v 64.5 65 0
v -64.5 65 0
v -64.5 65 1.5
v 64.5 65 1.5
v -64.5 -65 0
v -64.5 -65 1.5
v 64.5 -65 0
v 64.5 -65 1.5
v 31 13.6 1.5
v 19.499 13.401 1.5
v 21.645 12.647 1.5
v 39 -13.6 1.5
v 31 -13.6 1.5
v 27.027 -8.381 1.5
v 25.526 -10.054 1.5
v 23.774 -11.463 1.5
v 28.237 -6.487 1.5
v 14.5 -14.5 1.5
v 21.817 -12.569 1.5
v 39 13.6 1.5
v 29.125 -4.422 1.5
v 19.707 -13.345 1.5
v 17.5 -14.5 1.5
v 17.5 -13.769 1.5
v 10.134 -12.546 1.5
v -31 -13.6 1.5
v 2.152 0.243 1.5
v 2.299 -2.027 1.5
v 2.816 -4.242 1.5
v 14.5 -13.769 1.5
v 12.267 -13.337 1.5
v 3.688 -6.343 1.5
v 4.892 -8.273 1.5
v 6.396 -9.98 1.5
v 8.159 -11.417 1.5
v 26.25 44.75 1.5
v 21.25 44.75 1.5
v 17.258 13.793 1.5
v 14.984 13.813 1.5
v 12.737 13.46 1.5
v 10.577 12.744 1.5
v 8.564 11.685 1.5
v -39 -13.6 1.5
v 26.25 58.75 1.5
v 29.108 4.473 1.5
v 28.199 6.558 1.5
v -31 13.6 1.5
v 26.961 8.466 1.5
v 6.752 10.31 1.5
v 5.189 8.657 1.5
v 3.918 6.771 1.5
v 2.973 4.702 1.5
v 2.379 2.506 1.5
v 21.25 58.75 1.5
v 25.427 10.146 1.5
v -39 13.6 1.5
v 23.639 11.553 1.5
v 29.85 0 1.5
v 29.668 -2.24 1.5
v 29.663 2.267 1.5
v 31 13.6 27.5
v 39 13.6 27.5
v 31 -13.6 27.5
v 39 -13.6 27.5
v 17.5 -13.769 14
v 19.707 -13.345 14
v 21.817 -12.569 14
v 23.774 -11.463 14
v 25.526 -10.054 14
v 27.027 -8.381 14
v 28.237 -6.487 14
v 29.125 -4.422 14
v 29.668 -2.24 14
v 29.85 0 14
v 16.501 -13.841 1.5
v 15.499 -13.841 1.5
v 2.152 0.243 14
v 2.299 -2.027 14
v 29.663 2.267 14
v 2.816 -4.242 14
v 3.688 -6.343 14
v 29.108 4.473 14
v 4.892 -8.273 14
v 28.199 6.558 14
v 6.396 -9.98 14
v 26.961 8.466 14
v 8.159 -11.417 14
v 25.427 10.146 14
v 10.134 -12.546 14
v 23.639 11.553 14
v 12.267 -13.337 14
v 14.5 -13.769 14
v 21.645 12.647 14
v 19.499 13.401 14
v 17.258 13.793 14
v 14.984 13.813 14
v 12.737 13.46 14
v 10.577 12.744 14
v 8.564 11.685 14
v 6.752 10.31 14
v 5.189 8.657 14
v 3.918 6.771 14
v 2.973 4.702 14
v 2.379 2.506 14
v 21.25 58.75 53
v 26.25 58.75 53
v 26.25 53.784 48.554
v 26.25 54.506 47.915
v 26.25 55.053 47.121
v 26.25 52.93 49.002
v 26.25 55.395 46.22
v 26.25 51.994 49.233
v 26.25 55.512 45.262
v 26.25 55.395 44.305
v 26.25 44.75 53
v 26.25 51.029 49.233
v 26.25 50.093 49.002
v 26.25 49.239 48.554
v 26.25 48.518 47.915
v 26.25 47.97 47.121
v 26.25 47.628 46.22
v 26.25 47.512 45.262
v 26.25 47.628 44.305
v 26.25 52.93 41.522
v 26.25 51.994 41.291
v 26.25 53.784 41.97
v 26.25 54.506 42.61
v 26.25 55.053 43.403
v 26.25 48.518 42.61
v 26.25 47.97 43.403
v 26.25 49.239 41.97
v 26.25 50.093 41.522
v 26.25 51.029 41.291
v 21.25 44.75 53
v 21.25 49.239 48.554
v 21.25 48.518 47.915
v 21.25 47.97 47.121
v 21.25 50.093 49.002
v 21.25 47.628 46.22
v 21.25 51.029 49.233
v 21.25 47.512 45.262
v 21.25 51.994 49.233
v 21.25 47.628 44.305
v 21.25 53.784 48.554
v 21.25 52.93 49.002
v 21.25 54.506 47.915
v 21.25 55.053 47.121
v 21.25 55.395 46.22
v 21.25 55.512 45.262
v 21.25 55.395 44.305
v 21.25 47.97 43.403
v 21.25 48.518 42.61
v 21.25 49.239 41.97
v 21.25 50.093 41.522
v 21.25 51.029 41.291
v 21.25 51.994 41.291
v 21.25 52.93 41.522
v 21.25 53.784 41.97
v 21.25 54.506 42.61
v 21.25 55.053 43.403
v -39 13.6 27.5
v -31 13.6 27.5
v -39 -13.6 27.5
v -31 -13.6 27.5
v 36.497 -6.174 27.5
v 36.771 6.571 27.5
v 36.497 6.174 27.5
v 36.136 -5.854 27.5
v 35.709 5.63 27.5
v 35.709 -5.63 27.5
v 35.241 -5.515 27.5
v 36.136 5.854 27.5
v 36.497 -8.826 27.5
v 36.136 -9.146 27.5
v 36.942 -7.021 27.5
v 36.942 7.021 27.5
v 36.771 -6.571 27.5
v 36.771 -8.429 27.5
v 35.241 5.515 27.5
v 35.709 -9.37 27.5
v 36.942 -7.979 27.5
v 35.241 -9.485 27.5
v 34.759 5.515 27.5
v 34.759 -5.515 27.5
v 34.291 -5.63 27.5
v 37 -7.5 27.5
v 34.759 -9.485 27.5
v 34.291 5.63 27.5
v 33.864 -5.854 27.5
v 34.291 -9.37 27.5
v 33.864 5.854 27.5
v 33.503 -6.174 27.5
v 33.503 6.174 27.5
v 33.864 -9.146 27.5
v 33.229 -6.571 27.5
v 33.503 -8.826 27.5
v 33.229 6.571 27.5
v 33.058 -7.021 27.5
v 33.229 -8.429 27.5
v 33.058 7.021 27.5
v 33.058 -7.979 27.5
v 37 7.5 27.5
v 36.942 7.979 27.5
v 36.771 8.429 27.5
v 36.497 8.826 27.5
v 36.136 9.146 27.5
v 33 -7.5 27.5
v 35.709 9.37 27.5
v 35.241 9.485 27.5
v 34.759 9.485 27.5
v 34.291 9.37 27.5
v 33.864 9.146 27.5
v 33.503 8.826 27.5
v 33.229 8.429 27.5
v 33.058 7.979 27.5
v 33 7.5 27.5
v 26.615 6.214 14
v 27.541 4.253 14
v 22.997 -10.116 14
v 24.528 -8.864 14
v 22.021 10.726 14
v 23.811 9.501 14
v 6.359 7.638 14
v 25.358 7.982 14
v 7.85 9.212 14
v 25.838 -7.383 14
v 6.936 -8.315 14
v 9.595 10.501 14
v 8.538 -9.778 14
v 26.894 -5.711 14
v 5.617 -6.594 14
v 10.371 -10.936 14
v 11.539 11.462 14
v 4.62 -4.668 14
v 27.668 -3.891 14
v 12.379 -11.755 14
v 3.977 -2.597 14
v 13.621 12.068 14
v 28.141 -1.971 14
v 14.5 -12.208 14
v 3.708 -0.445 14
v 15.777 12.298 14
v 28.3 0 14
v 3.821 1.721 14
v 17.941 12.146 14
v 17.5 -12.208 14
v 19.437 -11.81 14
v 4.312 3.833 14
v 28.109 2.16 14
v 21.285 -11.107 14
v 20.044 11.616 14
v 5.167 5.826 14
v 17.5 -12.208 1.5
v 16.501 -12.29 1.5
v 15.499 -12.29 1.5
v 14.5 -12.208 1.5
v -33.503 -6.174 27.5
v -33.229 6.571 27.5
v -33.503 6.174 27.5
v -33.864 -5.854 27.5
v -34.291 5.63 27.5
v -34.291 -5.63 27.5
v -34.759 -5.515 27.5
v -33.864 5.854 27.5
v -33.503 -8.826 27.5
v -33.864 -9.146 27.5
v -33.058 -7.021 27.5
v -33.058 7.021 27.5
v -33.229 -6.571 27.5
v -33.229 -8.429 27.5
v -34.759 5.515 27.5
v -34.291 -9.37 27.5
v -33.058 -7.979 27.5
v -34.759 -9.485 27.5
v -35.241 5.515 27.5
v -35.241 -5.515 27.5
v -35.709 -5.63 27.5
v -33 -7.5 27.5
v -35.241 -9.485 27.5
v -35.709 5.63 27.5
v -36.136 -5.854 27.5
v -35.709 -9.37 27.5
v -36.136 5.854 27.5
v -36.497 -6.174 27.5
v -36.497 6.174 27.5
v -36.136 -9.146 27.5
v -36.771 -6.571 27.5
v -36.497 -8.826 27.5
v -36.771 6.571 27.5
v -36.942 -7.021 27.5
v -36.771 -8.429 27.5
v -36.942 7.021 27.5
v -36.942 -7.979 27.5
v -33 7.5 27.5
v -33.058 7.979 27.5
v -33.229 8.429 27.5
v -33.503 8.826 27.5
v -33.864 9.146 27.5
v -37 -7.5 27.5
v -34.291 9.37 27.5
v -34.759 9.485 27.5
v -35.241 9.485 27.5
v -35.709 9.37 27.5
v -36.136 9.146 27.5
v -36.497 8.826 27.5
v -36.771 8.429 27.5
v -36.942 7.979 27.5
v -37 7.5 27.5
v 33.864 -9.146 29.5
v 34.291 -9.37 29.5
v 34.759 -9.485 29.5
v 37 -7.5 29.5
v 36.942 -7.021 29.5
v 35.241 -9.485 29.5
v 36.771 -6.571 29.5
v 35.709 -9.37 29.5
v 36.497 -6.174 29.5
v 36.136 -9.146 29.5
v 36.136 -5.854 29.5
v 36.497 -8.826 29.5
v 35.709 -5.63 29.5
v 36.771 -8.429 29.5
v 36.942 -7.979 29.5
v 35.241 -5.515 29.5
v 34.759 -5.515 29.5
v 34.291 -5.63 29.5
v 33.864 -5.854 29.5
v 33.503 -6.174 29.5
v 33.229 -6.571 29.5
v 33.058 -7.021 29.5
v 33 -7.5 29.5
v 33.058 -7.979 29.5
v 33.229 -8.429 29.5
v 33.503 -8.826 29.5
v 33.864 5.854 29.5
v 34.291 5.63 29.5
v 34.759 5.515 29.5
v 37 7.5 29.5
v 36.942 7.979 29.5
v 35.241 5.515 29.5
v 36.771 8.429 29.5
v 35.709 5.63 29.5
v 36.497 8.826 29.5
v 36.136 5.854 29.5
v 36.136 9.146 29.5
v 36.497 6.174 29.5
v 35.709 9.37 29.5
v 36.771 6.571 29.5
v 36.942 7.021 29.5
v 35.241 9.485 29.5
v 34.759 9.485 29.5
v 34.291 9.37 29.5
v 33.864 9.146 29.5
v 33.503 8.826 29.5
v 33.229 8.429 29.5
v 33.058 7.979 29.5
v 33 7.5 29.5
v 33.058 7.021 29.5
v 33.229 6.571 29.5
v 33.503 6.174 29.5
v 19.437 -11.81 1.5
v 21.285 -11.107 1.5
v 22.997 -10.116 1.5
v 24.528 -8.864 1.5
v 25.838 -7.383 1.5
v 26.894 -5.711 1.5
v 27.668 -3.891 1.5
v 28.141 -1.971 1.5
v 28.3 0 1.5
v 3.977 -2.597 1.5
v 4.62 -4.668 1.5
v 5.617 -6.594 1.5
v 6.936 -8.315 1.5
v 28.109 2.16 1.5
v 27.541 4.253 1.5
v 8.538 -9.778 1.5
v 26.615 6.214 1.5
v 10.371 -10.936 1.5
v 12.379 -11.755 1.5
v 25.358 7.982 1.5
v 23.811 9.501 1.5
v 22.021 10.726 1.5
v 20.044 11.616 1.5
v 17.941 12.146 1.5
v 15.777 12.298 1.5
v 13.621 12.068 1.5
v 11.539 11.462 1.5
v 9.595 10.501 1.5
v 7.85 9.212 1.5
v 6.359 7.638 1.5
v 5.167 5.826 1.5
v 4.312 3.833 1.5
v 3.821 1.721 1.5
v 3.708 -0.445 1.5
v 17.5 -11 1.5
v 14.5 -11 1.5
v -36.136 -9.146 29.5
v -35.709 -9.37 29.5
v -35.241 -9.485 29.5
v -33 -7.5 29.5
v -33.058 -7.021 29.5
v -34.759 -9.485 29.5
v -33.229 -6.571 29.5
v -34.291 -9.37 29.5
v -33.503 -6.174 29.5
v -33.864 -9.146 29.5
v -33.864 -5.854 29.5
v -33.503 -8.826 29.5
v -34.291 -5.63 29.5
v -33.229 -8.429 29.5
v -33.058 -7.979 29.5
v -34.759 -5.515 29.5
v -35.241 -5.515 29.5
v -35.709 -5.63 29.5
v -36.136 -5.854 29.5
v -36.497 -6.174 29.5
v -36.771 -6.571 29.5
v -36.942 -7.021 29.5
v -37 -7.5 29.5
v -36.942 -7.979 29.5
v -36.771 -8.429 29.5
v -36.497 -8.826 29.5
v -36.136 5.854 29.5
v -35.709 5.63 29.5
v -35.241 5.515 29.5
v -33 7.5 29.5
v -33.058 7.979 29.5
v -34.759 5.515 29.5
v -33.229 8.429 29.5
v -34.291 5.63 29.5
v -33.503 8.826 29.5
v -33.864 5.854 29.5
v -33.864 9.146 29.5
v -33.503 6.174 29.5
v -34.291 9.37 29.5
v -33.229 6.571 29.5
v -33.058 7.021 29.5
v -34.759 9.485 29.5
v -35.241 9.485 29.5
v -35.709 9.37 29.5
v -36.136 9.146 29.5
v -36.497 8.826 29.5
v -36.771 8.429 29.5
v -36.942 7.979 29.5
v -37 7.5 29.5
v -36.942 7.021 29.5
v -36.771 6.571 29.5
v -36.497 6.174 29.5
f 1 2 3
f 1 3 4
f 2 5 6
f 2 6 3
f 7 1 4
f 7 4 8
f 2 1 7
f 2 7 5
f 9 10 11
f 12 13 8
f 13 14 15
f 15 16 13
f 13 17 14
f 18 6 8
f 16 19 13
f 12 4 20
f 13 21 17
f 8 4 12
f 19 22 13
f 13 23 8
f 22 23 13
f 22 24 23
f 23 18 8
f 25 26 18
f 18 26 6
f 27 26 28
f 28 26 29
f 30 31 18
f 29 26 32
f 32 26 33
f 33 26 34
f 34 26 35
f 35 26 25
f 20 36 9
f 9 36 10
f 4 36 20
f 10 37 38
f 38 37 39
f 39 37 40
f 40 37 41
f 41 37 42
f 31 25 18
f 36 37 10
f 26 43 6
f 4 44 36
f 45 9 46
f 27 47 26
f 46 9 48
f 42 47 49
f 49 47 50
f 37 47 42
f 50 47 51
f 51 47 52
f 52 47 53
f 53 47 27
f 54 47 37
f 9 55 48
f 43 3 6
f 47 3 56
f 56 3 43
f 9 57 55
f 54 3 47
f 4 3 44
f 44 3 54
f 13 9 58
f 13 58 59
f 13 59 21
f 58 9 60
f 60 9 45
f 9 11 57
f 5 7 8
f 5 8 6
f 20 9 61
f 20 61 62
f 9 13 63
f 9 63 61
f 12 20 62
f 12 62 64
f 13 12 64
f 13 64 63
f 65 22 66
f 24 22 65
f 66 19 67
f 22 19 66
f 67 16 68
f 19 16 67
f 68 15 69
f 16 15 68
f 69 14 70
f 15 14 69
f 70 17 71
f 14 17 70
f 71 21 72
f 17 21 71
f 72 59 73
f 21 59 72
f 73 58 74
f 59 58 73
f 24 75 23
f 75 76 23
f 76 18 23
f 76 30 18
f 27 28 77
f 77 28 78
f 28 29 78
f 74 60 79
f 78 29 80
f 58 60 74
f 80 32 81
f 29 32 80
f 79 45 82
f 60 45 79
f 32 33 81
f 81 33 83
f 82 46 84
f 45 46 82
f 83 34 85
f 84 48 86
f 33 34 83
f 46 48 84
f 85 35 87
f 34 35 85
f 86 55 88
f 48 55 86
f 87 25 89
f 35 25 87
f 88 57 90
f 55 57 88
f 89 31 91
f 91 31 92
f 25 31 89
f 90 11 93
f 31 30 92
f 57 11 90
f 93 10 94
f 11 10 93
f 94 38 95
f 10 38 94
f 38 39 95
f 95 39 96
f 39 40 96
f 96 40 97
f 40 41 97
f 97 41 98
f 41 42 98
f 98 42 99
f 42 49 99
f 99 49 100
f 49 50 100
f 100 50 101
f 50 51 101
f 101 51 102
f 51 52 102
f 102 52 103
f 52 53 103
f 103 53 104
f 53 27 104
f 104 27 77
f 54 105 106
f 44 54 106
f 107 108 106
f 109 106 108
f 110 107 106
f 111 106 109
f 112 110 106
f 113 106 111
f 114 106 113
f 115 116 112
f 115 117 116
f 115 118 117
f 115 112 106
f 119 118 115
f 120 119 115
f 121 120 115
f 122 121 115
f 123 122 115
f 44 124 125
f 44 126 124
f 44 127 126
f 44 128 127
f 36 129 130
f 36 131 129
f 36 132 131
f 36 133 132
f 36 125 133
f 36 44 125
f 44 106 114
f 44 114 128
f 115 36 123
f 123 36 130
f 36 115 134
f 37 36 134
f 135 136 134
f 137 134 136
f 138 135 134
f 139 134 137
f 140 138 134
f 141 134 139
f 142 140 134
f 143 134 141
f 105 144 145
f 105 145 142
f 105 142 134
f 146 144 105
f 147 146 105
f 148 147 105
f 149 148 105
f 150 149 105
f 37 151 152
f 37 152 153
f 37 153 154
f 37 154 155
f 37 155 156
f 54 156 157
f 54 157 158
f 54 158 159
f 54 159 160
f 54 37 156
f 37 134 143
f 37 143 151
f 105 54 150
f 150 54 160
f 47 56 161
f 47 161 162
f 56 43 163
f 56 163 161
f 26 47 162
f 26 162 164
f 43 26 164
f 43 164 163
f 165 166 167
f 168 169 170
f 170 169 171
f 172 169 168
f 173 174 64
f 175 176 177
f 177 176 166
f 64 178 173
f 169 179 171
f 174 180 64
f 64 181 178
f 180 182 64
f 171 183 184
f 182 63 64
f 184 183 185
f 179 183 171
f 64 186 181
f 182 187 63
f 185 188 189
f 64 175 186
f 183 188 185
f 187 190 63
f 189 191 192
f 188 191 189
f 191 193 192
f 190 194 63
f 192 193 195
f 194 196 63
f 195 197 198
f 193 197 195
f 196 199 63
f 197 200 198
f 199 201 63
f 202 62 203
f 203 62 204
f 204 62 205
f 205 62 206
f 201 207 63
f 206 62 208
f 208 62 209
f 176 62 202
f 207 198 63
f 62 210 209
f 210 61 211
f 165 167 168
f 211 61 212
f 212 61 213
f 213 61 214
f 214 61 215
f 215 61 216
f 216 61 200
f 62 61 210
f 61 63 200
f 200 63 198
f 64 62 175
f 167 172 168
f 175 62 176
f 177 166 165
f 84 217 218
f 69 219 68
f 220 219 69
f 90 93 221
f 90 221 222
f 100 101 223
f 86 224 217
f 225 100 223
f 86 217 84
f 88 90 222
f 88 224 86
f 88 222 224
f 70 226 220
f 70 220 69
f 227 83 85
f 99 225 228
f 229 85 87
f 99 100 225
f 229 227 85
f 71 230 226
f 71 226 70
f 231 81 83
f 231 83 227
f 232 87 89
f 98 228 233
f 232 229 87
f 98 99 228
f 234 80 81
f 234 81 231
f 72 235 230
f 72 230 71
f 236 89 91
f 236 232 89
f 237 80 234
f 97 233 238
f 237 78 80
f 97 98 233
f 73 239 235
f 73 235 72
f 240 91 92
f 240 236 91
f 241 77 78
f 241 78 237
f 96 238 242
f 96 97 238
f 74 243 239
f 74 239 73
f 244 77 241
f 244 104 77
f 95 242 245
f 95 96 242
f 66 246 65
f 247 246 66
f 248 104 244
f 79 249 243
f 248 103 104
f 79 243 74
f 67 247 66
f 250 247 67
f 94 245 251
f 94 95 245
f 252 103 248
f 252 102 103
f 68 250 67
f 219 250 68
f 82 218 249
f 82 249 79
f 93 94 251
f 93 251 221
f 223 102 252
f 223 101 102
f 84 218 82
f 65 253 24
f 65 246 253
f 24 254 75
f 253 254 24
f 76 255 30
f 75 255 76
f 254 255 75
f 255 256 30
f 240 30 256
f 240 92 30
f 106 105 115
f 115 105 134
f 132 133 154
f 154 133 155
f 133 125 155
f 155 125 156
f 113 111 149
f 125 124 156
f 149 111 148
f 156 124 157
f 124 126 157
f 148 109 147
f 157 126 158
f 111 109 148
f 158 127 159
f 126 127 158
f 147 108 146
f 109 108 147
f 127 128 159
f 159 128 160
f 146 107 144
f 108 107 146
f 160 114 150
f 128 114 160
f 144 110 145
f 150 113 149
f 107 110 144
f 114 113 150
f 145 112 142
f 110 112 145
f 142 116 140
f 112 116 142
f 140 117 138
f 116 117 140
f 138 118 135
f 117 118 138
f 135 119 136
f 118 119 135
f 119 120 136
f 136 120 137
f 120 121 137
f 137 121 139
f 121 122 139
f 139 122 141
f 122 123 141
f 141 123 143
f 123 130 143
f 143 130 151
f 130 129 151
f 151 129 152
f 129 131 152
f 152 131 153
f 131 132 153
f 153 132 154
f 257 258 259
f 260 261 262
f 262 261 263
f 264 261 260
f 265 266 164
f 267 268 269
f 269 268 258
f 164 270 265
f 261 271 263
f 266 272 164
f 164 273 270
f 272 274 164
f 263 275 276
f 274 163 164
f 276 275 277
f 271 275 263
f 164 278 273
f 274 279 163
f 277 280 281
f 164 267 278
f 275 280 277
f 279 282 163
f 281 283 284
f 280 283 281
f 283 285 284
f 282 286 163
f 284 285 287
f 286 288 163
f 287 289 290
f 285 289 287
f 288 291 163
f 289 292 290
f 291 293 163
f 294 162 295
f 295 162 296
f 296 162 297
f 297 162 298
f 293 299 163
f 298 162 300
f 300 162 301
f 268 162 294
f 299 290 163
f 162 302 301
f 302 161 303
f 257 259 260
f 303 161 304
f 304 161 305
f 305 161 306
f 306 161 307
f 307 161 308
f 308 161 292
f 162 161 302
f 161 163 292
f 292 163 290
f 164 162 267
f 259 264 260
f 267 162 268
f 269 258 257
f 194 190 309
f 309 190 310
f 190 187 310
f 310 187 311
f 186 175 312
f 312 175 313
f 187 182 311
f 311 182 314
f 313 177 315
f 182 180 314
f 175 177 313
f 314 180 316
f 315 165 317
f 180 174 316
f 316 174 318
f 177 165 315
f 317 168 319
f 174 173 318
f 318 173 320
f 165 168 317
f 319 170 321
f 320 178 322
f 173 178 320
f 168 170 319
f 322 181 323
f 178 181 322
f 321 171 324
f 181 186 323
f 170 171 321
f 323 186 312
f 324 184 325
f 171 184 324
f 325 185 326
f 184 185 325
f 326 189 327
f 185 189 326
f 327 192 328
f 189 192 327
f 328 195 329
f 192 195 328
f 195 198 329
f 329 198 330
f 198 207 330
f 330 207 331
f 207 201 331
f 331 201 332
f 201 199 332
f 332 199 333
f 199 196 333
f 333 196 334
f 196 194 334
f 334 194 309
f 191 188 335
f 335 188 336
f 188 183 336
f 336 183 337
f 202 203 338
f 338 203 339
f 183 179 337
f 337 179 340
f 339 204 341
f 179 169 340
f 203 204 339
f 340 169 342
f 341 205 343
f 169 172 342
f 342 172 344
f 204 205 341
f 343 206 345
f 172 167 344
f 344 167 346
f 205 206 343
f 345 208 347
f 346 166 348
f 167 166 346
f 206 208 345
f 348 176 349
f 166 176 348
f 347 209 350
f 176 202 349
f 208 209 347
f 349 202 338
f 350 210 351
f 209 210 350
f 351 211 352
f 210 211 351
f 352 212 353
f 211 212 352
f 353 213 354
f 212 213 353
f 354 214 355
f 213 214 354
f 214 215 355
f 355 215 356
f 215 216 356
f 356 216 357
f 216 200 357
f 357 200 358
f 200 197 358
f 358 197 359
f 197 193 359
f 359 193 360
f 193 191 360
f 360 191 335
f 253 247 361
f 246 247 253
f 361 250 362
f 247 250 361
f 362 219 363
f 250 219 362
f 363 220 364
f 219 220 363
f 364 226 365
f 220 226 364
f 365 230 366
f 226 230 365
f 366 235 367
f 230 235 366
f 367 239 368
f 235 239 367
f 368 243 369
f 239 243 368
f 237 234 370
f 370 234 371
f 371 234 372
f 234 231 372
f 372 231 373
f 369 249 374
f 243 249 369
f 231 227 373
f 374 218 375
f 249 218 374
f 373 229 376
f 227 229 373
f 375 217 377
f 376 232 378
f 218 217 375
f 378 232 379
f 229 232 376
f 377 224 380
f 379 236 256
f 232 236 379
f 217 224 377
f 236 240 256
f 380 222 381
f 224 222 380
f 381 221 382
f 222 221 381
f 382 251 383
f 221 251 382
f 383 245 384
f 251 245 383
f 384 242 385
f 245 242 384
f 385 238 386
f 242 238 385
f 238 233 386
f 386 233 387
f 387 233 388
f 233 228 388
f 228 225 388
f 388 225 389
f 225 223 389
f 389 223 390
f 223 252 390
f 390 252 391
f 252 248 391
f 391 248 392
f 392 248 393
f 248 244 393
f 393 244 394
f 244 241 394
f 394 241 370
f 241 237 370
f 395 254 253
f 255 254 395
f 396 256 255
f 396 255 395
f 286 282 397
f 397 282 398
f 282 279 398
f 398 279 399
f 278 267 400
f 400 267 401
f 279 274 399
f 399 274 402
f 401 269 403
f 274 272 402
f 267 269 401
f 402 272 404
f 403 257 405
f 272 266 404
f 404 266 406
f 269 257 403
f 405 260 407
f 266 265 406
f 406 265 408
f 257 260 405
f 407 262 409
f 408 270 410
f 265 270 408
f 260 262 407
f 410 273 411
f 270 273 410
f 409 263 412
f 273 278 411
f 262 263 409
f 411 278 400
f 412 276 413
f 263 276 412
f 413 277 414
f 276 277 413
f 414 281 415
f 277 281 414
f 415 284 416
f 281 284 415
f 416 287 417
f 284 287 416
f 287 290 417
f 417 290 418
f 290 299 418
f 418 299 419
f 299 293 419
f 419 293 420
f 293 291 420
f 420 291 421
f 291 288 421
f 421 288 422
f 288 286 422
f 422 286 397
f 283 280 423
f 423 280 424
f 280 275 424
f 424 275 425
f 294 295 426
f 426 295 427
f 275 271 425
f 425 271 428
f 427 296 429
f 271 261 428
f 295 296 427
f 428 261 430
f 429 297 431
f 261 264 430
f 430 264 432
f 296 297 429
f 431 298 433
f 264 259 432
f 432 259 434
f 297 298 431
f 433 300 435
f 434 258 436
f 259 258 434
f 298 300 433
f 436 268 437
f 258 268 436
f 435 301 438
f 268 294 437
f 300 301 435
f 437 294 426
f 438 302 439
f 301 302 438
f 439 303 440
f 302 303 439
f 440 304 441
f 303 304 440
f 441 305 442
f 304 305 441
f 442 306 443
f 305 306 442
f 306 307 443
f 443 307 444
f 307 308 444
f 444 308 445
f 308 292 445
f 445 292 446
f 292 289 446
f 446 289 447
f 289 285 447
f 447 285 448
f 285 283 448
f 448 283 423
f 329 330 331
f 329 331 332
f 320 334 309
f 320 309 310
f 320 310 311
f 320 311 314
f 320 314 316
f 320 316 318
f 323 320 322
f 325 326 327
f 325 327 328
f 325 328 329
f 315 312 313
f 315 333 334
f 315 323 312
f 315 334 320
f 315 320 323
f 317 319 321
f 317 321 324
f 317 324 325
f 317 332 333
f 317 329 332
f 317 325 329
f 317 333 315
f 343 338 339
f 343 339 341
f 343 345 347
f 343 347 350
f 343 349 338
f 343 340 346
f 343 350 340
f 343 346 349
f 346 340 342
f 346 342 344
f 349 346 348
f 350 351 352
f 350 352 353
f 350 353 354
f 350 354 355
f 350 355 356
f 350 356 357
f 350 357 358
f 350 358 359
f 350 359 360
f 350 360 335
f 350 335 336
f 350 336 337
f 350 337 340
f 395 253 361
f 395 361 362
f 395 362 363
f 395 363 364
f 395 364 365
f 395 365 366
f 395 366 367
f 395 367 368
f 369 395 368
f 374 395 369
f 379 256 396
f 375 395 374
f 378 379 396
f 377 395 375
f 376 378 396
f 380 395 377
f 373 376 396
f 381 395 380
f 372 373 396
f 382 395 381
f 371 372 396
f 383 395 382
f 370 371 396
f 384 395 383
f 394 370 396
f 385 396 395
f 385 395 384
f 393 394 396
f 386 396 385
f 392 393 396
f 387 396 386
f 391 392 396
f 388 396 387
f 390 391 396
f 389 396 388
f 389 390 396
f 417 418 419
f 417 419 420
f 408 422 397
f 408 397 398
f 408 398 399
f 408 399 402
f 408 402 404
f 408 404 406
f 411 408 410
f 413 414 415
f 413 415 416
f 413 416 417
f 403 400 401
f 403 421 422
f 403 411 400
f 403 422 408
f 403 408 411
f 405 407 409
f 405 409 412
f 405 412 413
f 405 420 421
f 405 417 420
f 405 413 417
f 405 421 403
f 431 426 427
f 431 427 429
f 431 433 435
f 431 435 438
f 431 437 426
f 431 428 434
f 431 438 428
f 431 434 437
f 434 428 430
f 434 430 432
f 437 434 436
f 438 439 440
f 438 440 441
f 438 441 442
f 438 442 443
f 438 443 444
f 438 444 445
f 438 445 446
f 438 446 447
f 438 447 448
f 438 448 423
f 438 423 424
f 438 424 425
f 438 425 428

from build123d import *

# Parameters (mm, degrees)
SKETCH_W        = 129
SKETCH_H        = 130
PAD_DEPTH       = 1.5
SKETCH001_R     = 13.85
PAD001_DEPTH    = 12.5
SKETCH002_R     = 12.3
POCKET_DEPTH    = 12.5
SKETCH003_W     = 3
SKETCH003_H     = 3.5
POCKET001_DEPTH = 12.5
SKETCH004_W     = 8
SKETCH004_H     = 27.2
PAD002_DEPTH    = 26
SKETCH005_R     = 2
PAD003_DEPTH    = 2
SKETCH006_W     = 5
SKETCH006_H     = 14
PAD004_DEPTH    = 51.5
SKETCH007_R     = 4
POCKET002_DEPTH = 5


with BuildPart() as part:
    # Sketch → Pad (new body)
    with BuildSketch(Plane.XY):
        Rectangle(SKETCH_W, SKETCH_H)
    extrude(amount=PAD_DEPTH)

    # Sketch001 (on Face6 of Pad) → Pad001 (join)
    with BuildSketch(Plane.XY.offset(1.5)):
        with Locations((16, 0)):
            Circle(SKETCH001_R)
    extrude(amount=PAD001_DEPTH)

    # Sketch002 (on Face8 of Pad001) → Pocket (cut)
    with BuildSketch(Plane.XY.offset(14)):
        with Locations((16, 0)):
            Circle(SKETCH002_R)
    extrude(amount=-POCKET_DEPTH, mode=Mode.SUBTRACT)

    # Sketch003 (on Face8 of Pocket) → Pocket001 (cut)
    with BuildSketch(Plane.XY.offset(14)):
        with Locations((16, -12.75)):
            Rectangle(SKETCH003_W, SKETCH003_H)
    extrude(amount=-POCKET001_DEPTH, mode=Mode.SUBTRACT)

    # Sketch004 (on Face5 of Pocket001) → Pad002 (join)
    with BuildSketch(Plane.XY.offset(1.5)):
        with Locations((35, 0)):
            Rectangle(SKETCH004_W, SKETCH004_H)
        with Locations((-35, 0)):
            Rectangle(SKETCH004_W, SKETCH004_H)
    extrude(amount=PAD002_DEPTH)

    # Sketch005 (on Face23 of Pad002) → Pad003 (join)
    with BuildSketch(Plane.XY.offset(27.5)):
        with Locations((35, 7.5)):
            Circle(SKETCH005_R)
        with Locations((35, -7.5)):
            Circle(SKETCH005_R)
        with Locations((-35, 7.5)):
            Circle(SKETCH005_R)
        with Locations((-35, -7.5)):
            Circle(SKETCH005_R)
    extrude(amount=PAD003_DEPTH)

    # Sketch006 (on Face5 of Pad003) → Pad004 (join)
    with BuildSketch(Plane.XY.offset(1.5)):
        with Locations((23.75, 51.75)):
            Rectangle(SKETCH006_W, SKETCH006_H)
    extrude(amount=PAD004_DEPTH)

    # Sketch007 (on Face15 of Pad004) → Pocket002 (cut)
    with BuildSketch(Plane.YZ.offset(26.25)):
        with Locations((51.511597, 45.262314)):
            Circle(SKETCH007_R)
    extrude(amount=-POCKET002_DEPTH, mode=Mode.SUBTRACT)


solid = part.part
